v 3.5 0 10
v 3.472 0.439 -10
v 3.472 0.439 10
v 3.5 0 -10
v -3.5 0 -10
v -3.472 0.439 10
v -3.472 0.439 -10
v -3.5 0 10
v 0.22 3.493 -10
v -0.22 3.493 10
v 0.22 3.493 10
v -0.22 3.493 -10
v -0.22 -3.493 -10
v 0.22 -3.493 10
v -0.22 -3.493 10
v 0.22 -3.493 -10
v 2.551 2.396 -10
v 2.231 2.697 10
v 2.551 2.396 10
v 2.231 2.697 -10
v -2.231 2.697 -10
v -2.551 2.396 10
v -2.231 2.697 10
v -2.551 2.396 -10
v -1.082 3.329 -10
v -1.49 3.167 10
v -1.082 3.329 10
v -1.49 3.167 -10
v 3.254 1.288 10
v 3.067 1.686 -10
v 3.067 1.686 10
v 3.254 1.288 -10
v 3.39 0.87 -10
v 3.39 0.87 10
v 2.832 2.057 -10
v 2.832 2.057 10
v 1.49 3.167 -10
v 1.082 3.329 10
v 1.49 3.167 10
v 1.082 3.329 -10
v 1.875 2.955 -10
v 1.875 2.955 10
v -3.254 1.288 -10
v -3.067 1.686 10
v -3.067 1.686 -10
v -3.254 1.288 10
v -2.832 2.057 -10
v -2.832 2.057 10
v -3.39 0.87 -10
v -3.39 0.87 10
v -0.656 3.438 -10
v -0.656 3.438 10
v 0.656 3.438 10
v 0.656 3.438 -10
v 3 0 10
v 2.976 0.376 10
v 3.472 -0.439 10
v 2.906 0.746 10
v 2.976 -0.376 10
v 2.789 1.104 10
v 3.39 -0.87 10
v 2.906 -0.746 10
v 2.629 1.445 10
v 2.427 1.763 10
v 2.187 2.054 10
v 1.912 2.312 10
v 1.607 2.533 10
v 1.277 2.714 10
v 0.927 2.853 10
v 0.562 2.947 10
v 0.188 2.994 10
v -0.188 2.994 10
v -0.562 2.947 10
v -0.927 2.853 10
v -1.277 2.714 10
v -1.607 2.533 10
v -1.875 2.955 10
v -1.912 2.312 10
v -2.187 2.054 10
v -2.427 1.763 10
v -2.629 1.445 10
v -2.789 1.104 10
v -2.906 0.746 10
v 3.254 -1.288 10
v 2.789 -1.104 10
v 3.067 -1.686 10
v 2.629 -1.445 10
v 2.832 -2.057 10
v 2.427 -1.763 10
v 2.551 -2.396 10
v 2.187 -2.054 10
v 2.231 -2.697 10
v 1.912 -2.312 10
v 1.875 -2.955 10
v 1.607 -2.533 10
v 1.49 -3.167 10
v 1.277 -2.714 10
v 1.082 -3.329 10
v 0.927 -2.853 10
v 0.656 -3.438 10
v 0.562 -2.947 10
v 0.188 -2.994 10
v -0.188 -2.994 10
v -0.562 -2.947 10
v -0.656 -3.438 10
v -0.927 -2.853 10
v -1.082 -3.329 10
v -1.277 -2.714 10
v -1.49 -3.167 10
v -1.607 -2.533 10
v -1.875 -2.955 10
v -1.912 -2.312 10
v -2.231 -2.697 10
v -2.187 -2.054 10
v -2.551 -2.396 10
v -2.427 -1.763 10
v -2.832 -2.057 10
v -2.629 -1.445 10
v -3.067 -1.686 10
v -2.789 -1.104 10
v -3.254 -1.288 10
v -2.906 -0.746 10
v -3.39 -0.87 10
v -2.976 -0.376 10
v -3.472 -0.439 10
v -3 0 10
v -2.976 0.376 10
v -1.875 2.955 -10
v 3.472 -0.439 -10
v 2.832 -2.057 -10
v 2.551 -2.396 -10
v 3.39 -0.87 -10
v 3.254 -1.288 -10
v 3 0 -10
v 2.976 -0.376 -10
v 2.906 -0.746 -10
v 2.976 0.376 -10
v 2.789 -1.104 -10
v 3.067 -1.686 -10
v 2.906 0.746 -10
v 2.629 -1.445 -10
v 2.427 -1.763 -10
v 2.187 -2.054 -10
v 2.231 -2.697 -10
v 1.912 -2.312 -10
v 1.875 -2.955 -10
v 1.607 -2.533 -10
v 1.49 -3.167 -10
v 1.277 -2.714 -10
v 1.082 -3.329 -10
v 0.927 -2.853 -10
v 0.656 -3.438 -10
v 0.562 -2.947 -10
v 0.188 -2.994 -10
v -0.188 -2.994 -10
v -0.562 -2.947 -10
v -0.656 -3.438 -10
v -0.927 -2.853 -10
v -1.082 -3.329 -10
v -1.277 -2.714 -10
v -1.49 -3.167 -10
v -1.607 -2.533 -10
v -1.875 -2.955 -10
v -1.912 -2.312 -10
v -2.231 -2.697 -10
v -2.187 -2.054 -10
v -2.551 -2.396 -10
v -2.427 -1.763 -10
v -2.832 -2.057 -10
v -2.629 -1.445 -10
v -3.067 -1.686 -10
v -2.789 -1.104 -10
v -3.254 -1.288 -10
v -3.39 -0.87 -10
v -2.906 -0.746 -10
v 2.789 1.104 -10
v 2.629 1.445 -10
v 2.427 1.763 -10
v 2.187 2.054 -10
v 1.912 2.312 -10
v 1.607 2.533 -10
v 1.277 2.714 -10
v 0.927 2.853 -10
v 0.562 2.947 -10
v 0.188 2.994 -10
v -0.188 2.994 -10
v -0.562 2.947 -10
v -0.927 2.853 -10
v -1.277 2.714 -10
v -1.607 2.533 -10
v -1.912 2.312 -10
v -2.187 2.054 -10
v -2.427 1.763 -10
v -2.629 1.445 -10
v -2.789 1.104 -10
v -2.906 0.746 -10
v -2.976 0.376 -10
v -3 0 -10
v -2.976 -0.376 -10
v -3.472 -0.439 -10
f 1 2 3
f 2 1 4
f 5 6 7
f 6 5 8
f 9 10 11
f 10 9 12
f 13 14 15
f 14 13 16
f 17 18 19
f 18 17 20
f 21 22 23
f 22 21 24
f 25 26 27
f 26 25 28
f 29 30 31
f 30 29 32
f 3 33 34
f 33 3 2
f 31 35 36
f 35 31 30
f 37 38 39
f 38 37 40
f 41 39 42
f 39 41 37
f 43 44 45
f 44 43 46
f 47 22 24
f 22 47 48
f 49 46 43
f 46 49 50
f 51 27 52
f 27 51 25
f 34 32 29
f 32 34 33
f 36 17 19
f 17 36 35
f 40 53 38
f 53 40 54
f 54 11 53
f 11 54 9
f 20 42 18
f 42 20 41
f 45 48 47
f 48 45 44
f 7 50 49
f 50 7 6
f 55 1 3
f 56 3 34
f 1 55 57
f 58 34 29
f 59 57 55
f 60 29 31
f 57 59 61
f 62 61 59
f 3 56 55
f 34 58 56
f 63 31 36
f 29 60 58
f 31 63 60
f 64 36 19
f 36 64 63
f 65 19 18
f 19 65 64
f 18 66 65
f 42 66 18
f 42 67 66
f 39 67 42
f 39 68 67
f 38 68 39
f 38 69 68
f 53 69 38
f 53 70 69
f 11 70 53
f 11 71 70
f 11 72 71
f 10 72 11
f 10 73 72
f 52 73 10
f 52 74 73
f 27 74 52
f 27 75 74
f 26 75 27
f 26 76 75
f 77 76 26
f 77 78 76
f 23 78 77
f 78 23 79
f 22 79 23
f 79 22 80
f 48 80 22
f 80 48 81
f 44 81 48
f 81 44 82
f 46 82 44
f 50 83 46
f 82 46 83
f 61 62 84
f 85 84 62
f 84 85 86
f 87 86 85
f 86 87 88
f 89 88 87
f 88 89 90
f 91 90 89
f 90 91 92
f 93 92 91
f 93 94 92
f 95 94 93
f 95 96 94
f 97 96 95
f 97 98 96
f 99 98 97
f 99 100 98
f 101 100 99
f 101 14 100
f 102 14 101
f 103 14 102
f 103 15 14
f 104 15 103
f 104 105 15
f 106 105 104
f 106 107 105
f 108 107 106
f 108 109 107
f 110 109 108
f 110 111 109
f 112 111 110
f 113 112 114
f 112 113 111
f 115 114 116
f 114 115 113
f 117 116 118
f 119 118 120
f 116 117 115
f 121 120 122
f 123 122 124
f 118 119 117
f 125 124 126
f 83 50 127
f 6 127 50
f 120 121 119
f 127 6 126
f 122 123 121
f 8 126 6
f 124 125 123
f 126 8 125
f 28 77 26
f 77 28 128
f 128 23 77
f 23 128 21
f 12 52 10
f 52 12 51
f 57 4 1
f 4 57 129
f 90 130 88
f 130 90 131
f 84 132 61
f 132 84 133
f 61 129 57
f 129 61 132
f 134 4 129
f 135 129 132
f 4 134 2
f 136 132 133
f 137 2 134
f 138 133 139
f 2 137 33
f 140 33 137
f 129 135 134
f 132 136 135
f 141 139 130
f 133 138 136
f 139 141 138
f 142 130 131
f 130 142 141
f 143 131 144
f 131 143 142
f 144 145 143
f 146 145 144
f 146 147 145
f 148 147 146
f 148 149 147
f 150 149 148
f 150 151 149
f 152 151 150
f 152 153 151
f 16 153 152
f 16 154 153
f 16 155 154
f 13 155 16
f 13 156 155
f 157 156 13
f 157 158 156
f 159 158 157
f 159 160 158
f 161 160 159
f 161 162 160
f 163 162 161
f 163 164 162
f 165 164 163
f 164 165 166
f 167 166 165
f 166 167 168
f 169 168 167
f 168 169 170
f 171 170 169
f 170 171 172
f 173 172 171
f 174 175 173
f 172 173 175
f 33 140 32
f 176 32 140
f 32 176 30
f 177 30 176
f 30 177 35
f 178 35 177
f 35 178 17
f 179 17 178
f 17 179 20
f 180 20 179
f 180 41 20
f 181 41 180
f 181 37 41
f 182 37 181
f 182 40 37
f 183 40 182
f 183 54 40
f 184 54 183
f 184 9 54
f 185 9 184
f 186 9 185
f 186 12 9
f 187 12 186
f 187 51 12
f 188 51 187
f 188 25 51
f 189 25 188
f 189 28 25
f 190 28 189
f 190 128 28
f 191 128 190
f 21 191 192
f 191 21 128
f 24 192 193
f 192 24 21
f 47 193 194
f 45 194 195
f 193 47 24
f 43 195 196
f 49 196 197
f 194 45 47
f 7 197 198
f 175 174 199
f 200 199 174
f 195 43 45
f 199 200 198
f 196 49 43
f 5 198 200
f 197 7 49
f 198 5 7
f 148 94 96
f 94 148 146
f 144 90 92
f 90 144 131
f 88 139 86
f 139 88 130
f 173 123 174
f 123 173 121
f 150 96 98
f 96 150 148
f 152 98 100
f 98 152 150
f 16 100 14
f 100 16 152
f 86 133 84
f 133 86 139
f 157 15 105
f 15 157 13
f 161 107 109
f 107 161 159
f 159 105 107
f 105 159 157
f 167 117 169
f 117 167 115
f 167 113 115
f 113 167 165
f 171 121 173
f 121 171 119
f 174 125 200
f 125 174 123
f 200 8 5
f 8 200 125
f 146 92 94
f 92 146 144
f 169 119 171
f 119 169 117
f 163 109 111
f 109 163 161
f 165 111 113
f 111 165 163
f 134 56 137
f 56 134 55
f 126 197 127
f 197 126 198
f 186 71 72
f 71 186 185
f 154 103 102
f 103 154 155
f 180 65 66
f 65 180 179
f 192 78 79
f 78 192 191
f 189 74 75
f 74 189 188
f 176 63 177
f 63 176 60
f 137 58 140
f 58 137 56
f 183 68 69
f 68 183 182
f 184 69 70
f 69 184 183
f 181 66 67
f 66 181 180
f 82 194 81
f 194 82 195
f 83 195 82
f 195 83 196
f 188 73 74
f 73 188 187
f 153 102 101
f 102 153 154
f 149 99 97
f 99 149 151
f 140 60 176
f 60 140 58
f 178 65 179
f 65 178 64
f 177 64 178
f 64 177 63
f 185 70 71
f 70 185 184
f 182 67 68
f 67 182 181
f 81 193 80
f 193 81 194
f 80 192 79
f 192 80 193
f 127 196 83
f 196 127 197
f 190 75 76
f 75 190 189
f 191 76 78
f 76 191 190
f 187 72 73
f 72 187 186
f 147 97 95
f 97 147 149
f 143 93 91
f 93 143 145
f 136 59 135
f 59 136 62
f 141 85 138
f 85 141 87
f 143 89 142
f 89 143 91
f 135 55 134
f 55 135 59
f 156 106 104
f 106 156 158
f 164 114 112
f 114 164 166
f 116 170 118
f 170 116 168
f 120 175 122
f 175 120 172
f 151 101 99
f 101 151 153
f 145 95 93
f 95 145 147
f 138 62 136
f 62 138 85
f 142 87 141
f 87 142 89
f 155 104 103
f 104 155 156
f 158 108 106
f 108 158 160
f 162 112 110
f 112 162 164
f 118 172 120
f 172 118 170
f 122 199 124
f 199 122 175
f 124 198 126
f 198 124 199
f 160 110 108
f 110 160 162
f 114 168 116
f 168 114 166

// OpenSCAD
$fn = 50;


difference() {
	union() {
		translate(v = [0, 0, -10.0000000000]) {
			cylinder(h = 20, r = 3.5000000000);
		}
	}
	union() {
		translate(v = [0, 0, -100.0000000000]) {
			cylinder(h = 200, r = 3);
		}
	}
}
